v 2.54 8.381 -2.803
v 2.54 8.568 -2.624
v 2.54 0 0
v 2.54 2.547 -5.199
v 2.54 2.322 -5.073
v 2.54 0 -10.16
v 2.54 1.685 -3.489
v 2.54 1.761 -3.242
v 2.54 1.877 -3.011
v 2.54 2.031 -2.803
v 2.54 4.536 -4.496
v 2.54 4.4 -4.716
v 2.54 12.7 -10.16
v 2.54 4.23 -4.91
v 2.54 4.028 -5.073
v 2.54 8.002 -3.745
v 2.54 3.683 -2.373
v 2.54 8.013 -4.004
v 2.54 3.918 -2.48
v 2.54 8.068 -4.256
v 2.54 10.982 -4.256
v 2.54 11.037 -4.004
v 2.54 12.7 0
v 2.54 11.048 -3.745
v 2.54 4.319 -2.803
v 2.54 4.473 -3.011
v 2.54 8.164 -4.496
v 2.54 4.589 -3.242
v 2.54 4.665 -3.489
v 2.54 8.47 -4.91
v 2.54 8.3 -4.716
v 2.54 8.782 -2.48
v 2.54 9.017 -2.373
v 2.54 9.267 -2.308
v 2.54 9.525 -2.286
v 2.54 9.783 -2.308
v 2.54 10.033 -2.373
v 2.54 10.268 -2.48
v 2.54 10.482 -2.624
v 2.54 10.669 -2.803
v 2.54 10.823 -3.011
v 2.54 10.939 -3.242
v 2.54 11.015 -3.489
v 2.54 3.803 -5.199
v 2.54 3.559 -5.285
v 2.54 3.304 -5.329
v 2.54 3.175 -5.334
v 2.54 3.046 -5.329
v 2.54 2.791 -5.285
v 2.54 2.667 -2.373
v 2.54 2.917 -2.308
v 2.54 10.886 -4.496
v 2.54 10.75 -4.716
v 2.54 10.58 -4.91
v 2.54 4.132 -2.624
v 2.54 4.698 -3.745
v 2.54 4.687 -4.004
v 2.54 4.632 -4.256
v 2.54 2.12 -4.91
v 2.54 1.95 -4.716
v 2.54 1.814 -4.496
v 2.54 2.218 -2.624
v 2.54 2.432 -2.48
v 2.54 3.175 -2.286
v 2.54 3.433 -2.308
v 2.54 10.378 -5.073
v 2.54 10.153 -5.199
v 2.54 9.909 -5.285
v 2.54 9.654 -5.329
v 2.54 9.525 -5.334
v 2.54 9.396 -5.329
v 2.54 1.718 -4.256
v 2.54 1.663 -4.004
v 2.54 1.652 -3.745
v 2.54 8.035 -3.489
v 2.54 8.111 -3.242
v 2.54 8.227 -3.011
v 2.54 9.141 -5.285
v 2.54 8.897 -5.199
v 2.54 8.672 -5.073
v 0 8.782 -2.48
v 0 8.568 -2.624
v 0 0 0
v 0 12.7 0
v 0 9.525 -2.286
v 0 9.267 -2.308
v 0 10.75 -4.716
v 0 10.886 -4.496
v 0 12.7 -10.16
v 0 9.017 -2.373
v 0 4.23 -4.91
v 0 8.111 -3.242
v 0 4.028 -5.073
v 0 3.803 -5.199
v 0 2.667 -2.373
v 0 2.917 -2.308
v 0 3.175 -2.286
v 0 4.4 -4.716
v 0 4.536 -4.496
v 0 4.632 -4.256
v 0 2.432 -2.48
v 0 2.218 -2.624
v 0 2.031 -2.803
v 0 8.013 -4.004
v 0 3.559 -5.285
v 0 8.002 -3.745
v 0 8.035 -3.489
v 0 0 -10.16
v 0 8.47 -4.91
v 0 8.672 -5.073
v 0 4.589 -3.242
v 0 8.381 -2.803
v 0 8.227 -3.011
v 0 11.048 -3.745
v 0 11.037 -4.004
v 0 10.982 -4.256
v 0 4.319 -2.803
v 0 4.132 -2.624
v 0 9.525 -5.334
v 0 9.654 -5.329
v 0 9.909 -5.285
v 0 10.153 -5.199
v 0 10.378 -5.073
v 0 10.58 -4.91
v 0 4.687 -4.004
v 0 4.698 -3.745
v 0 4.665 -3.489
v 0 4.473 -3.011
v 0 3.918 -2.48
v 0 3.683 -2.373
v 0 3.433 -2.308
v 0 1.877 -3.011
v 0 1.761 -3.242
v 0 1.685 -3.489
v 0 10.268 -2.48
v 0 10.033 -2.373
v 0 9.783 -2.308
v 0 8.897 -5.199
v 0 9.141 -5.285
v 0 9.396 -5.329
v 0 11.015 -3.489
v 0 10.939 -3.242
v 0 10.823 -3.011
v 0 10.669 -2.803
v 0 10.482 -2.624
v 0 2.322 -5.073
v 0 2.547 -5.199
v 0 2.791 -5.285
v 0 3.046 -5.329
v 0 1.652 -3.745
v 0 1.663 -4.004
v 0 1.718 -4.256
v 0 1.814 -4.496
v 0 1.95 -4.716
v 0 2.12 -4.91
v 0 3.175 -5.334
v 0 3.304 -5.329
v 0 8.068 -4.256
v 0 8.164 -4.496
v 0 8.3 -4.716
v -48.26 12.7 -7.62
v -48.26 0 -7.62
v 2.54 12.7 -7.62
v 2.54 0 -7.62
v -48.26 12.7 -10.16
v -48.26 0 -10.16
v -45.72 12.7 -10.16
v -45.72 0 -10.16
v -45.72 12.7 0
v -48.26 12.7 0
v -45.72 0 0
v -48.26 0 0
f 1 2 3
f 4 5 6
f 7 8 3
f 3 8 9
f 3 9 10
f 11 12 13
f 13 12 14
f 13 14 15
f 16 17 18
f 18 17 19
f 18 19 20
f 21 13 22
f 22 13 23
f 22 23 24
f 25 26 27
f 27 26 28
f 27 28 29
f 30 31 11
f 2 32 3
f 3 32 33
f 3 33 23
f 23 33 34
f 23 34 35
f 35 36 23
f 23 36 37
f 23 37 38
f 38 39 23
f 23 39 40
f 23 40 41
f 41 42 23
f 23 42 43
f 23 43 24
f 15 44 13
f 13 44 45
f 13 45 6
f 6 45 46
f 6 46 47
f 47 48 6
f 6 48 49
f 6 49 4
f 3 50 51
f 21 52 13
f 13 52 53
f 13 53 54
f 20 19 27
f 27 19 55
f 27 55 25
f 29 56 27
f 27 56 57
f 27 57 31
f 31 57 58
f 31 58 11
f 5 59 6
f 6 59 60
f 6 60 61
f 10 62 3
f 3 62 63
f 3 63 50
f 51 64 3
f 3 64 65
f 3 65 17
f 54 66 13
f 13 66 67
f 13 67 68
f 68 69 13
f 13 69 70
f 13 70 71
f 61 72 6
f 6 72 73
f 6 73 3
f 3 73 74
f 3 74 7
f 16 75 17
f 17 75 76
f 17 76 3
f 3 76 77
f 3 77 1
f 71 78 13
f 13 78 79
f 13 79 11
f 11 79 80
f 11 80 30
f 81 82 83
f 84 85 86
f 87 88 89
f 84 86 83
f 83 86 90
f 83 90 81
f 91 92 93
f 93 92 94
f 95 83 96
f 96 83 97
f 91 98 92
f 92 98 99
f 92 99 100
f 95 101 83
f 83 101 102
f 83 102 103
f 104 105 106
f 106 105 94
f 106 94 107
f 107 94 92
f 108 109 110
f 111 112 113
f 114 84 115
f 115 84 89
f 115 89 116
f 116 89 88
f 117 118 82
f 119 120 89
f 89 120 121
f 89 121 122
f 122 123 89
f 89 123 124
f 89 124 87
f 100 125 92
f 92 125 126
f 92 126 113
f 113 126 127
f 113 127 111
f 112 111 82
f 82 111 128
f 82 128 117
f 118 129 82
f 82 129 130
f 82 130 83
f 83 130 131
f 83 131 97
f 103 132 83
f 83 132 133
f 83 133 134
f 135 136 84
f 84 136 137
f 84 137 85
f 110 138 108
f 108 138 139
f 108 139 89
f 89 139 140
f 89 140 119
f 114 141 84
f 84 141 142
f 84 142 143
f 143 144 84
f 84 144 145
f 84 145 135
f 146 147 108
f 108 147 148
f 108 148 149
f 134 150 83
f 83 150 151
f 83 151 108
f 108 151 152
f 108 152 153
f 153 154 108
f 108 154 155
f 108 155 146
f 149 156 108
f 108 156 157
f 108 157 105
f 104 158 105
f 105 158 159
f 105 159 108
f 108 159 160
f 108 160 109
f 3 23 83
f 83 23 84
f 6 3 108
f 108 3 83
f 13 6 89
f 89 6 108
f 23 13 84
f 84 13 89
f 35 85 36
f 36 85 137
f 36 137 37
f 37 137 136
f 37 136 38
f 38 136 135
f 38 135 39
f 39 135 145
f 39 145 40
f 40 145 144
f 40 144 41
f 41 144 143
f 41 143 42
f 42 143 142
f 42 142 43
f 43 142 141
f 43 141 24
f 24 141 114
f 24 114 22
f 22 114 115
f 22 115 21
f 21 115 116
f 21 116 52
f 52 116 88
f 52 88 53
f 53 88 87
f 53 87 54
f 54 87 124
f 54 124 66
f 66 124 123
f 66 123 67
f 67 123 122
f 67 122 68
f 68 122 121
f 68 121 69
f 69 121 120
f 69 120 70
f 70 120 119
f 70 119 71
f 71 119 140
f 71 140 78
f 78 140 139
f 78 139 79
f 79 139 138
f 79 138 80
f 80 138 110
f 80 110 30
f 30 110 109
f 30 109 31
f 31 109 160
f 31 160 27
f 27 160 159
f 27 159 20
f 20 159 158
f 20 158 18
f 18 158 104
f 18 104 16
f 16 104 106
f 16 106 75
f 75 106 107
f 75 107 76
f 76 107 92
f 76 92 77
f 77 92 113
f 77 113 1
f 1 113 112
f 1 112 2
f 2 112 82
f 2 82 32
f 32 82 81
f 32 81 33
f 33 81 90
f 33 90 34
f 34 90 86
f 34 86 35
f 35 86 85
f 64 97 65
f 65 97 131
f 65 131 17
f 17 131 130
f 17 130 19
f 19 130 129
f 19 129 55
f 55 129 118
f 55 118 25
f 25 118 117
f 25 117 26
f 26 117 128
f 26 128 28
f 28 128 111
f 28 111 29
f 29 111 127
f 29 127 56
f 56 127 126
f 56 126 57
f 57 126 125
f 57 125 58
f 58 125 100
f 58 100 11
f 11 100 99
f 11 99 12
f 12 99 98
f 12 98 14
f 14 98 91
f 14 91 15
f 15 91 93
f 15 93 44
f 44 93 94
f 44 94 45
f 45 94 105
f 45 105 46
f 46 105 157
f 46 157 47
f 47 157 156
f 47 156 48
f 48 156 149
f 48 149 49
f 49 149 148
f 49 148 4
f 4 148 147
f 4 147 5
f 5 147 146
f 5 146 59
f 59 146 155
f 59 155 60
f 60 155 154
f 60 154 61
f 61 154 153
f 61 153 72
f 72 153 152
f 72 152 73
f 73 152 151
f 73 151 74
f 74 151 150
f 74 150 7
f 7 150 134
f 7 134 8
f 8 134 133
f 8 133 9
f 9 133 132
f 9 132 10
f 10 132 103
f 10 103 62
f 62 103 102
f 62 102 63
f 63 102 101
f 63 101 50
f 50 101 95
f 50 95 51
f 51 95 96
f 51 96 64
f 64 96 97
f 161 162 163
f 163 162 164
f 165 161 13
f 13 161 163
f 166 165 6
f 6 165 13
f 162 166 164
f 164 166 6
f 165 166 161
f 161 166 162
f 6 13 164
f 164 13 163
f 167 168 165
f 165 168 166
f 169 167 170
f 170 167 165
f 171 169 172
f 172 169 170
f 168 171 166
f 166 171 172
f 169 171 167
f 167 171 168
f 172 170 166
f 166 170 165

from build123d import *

# Parameters (mm, degrees)
SKETCH2_W           = 10.16
SKETCH2_H           = 12.7
SKETCH2_R           = 1.524
BOSS_EXTRUDE2_DEPTH = 2.54
SKETCH3_W           = 2.54
SKETCH3_H           = 12.7
BOSS_EXTRUDE3_DEPTH = 50.8
SKETCH4_W           = 10.16
SKETCH4_H           = 12.7
BOSS_EXTRUDE4_DEPTH = 2.54


with BuildPart() as part:
    # Sketch2 → Boss-Extrude2 (new body)
    with BuildSketch(Plane(origin=(0, 0, 0), x_dir=(0, 0, -1), z_dir=(1, 0, 0))):
        with Locations((5.08, 6.35)):
            Rectangle(SKETCH2_W, SKETCH2_H)
        with Locations((3.81, 9.525)):
            Circle(SKETCH2_R, mode=Mode.SUBTRACT)
        with Locations((3.81, 3.175)):
            Circle(SKETCH2_R, mode=Mode.SUBTRACT)
    extrude(amount=BOSS_EXTRUDE2_DEPTH)


with BuildPart() as body_2:
    # Sketch3 → Boss-Extrude3 (new body)
    with BuildSketch(Plane(origin=(2.54, 0, 0), x_dir=(0, 0, -1), z_dir=(1, 0, 0))):
        with Locations((8.89, 6.35)):
            Rectangle(SKETCH3_W, SKETCH3_H)
    extrude(amount=-BOSS_EXTRUDE3_DEPTH)


with BuildPart() as body_3:
    # Sketch4 → Boss-Extrude4 (new body)
    with BuildSketch(Plane.ZY.offset(48.26)):
        with Locations((-5.08, 6.35)):
            Rectangle(SKETCH4_W, SKETCH4_H)
    extrude(amount=-BOSS_EXTRUDE4_DEPTH)


solid = Compound([part.part, body_2.part, body_3.part])
